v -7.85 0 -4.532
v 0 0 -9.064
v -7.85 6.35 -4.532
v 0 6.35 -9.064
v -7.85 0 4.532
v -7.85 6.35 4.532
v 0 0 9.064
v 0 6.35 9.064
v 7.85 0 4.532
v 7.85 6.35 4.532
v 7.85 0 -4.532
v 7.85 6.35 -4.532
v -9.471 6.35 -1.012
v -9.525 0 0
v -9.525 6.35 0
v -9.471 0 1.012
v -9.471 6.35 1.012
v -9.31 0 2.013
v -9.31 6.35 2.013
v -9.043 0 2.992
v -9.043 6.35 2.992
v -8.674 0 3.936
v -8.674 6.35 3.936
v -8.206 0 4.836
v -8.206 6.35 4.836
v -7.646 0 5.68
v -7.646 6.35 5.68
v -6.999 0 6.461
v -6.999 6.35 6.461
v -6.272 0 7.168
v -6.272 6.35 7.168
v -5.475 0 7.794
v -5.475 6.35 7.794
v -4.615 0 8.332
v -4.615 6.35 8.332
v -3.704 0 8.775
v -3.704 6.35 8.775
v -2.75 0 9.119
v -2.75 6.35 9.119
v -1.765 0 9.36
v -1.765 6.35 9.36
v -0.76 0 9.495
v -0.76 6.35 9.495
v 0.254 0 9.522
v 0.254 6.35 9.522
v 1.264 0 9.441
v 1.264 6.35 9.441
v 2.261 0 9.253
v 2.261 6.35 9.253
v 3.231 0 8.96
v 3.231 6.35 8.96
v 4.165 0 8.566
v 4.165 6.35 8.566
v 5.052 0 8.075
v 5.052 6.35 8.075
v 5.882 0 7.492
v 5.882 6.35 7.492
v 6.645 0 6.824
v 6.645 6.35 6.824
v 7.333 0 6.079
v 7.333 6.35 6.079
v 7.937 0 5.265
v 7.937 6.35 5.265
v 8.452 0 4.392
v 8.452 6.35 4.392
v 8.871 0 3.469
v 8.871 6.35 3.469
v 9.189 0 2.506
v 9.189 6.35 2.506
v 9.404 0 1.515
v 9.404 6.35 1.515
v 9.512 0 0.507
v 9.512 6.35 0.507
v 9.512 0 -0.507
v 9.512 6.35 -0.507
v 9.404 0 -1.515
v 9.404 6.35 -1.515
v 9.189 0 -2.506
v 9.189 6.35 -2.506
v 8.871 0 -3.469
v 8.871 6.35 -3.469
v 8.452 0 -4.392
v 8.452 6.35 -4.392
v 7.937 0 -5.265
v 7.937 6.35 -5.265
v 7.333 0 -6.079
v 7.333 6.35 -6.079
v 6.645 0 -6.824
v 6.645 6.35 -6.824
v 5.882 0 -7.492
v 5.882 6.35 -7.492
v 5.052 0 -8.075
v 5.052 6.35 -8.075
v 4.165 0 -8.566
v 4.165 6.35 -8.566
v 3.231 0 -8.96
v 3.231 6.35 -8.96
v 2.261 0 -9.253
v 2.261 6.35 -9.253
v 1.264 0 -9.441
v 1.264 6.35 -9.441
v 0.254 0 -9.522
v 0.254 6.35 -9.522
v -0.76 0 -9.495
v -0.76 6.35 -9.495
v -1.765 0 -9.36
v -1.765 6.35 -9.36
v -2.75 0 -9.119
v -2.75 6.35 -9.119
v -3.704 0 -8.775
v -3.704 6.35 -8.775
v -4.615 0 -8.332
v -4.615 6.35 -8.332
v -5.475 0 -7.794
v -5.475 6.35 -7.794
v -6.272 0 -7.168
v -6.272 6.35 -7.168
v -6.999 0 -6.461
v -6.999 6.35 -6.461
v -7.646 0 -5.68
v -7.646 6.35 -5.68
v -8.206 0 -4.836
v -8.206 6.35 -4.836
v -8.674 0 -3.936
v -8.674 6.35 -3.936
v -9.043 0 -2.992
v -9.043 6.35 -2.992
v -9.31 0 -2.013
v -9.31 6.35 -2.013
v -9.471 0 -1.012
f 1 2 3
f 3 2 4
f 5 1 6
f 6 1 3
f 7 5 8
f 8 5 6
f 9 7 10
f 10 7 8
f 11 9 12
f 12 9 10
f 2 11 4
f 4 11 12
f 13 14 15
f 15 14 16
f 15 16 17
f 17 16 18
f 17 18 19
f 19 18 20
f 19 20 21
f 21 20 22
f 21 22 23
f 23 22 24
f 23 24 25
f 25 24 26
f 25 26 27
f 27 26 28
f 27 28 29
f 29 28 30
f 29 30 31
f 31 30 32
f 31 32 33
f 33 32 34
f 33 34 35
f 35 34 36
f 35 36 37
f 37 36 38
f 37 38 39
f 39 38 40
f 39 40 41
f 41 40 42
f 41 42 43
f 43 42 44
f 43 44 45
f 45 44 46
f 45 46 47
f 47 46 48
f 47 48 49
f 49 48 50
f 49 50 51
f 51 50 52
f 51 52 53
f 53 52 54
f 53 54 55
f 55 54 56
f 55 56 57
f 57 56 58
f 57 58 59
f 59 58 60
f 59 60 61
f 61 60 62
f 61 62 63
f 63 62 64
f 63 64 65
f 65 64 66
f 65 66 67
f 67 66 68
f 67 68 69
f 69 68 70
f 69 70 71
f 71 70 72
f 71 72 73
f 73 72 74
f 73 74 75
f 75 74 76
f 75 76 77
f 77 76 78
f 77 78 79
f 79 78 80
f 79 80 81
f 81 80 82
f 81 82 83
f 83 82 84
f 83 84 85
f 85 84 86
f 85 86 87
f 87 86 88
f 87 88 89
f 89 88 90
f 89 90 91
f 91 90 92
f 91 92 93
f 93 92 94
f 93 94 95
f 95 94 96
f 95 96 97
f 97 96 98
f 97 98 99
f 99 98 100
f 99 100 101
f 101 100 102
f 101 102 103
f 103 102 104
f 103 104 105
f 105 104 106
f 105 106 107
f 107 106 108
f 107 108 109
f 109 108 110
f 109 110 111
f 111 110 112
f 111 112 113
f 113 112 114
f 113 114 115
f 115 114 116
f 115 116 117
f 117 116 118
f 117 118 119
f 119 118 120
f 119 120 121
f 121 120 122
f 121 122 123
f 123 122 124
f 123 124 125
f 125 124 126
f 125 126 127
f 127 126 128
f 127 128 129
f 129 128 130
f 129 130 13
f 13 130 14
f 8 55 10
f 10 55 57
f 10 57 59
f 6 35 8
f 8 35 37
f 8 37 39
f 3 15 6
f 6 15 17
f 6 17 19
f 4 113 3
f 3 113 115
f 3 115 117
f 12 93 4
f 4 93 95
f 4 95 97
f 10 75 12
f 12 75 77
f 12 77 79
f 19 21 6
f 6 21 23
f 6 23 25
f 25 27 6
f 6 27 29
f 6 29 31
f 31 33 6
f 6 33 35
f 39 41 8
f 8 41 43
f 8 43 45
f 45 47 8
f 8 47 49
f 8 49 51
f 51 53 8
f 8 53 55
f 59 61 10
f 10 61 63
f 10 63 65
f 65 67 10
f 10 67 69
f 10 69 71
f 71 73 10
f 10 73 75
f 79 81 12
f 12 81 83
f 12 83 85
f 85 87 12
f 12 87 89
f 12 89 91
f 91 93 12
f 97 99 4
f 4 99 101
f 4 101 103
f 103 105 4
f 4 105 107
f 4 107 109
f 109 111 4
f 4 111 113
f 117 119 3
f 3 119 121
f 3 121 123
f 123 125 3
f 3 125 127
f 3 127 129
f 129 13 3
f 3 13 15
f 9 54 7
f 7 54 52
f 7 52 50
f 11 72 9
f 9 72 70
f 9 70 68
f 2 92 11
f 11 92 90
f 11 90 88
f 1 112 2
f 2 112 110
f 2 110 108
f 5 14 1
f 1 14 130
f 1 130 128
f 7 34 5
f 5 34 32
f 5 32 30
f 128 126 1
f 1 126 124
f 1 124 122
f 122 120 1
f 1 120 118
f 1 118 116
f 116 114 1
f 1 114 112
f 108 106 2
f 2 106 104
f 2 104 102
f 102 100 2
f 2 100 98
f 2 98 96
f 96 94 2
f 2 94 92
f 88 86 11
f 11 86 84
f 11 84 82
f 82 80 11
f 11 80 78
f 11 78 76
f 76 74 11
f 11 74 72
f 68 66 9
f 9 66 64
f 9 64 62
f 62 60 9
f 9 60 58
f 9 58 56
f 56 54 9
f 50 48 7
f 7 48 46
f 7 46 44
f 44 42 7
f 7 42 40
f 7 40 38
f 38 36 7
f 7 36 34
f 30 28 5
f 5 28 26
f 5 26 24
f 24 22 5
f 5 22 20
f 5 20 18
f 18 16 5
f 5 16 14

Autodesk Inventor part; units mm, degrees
ref_plane "YZ Plane" through (0, 0, 0) normal (1, 0, 0) x (0, 1, 0)
ref_plane "XZ Plane" through (0, 0, 0) normal (0, 1, 0) x (-1, 0, 0)
ref_plane "XY Plane" through (0, 0, 0) normal (0, 0, 1) x (1, 0, 0)
sketch "Sketch1" plane through (0, 0, 0) normal (0, 1, 0) x (-1, 0, 0)
  circle A0 centre (0, 0) radius 6.35 construction
  line L0 (6.35, -3.6662) -> (0, -7.3323)
  line L1 (0, -7.3323) -> (-6.35, -3.6662)
  line L2 (-6.35, -3.6662) -> (-6.35, 3.6662)
  line L3 (-6.35, 3.6662) -> (0, 7.3323)
  line L4 (0, 7.3323) -> (6.35, 3.6662)
  line L5 (6.35, 3.6662) -> (6.35, -3.6662)
  circle A1 centre (0, 0) radius 9.525
  point P0 (6.35, 0)
  dimension "d0" = 12.7
  dimension "d1" = 19.05
extrude "Extrusion1" add sketch "Sketch1" along normal blind 6.35
sketch "Sketch2" plane through (0, 6.35, 0) normal (0, 1, 0) x (1, 0, 0)
  line L0 (-6.35, 3.6662) -> (0, 7.3323) projected
  line L1 (0, 7.3323) -> (6.35, 3.6662) projected
  line L2 (-6.35, -3.6662) -> (-6.35, 3.6662) projected
  line L3 (0, -7.3323) -> (-6.35, -3.6662) projected
  line L4 (6.35, -3.6662) -> (0, -7.3323) projected
  line L5 (6.35, 3.6662) -> (6.35, -3.6662) projected
  line L6 (-7.85, 4.5322) -> (0, 9.0644)
  line L7 (0, 9.0644) -> (7.85, 4.5322)
  line L8 (7.85, 4.5322) -> (7.85, -4.5322)
  line L9 (7.85, -4.5322) -> (0, -9.0644)
  line L10 (0, -9.0644) -> (-7.85, -4.5322)
  line L11 (-7.85, -4.5322) -> (-7.85, 4.5322)
  point P0 (0, 0)
  dimension "d4" = 1.5
extrude "Extrusion2" cut sketch "Sketch2" against normal blind 25.4 contours L0 L1 L5 L4 L3 L2 | L6 L7 L8 L9 L10 L11
properties part number "SportGearbox_HexDiffGearSpacer"
